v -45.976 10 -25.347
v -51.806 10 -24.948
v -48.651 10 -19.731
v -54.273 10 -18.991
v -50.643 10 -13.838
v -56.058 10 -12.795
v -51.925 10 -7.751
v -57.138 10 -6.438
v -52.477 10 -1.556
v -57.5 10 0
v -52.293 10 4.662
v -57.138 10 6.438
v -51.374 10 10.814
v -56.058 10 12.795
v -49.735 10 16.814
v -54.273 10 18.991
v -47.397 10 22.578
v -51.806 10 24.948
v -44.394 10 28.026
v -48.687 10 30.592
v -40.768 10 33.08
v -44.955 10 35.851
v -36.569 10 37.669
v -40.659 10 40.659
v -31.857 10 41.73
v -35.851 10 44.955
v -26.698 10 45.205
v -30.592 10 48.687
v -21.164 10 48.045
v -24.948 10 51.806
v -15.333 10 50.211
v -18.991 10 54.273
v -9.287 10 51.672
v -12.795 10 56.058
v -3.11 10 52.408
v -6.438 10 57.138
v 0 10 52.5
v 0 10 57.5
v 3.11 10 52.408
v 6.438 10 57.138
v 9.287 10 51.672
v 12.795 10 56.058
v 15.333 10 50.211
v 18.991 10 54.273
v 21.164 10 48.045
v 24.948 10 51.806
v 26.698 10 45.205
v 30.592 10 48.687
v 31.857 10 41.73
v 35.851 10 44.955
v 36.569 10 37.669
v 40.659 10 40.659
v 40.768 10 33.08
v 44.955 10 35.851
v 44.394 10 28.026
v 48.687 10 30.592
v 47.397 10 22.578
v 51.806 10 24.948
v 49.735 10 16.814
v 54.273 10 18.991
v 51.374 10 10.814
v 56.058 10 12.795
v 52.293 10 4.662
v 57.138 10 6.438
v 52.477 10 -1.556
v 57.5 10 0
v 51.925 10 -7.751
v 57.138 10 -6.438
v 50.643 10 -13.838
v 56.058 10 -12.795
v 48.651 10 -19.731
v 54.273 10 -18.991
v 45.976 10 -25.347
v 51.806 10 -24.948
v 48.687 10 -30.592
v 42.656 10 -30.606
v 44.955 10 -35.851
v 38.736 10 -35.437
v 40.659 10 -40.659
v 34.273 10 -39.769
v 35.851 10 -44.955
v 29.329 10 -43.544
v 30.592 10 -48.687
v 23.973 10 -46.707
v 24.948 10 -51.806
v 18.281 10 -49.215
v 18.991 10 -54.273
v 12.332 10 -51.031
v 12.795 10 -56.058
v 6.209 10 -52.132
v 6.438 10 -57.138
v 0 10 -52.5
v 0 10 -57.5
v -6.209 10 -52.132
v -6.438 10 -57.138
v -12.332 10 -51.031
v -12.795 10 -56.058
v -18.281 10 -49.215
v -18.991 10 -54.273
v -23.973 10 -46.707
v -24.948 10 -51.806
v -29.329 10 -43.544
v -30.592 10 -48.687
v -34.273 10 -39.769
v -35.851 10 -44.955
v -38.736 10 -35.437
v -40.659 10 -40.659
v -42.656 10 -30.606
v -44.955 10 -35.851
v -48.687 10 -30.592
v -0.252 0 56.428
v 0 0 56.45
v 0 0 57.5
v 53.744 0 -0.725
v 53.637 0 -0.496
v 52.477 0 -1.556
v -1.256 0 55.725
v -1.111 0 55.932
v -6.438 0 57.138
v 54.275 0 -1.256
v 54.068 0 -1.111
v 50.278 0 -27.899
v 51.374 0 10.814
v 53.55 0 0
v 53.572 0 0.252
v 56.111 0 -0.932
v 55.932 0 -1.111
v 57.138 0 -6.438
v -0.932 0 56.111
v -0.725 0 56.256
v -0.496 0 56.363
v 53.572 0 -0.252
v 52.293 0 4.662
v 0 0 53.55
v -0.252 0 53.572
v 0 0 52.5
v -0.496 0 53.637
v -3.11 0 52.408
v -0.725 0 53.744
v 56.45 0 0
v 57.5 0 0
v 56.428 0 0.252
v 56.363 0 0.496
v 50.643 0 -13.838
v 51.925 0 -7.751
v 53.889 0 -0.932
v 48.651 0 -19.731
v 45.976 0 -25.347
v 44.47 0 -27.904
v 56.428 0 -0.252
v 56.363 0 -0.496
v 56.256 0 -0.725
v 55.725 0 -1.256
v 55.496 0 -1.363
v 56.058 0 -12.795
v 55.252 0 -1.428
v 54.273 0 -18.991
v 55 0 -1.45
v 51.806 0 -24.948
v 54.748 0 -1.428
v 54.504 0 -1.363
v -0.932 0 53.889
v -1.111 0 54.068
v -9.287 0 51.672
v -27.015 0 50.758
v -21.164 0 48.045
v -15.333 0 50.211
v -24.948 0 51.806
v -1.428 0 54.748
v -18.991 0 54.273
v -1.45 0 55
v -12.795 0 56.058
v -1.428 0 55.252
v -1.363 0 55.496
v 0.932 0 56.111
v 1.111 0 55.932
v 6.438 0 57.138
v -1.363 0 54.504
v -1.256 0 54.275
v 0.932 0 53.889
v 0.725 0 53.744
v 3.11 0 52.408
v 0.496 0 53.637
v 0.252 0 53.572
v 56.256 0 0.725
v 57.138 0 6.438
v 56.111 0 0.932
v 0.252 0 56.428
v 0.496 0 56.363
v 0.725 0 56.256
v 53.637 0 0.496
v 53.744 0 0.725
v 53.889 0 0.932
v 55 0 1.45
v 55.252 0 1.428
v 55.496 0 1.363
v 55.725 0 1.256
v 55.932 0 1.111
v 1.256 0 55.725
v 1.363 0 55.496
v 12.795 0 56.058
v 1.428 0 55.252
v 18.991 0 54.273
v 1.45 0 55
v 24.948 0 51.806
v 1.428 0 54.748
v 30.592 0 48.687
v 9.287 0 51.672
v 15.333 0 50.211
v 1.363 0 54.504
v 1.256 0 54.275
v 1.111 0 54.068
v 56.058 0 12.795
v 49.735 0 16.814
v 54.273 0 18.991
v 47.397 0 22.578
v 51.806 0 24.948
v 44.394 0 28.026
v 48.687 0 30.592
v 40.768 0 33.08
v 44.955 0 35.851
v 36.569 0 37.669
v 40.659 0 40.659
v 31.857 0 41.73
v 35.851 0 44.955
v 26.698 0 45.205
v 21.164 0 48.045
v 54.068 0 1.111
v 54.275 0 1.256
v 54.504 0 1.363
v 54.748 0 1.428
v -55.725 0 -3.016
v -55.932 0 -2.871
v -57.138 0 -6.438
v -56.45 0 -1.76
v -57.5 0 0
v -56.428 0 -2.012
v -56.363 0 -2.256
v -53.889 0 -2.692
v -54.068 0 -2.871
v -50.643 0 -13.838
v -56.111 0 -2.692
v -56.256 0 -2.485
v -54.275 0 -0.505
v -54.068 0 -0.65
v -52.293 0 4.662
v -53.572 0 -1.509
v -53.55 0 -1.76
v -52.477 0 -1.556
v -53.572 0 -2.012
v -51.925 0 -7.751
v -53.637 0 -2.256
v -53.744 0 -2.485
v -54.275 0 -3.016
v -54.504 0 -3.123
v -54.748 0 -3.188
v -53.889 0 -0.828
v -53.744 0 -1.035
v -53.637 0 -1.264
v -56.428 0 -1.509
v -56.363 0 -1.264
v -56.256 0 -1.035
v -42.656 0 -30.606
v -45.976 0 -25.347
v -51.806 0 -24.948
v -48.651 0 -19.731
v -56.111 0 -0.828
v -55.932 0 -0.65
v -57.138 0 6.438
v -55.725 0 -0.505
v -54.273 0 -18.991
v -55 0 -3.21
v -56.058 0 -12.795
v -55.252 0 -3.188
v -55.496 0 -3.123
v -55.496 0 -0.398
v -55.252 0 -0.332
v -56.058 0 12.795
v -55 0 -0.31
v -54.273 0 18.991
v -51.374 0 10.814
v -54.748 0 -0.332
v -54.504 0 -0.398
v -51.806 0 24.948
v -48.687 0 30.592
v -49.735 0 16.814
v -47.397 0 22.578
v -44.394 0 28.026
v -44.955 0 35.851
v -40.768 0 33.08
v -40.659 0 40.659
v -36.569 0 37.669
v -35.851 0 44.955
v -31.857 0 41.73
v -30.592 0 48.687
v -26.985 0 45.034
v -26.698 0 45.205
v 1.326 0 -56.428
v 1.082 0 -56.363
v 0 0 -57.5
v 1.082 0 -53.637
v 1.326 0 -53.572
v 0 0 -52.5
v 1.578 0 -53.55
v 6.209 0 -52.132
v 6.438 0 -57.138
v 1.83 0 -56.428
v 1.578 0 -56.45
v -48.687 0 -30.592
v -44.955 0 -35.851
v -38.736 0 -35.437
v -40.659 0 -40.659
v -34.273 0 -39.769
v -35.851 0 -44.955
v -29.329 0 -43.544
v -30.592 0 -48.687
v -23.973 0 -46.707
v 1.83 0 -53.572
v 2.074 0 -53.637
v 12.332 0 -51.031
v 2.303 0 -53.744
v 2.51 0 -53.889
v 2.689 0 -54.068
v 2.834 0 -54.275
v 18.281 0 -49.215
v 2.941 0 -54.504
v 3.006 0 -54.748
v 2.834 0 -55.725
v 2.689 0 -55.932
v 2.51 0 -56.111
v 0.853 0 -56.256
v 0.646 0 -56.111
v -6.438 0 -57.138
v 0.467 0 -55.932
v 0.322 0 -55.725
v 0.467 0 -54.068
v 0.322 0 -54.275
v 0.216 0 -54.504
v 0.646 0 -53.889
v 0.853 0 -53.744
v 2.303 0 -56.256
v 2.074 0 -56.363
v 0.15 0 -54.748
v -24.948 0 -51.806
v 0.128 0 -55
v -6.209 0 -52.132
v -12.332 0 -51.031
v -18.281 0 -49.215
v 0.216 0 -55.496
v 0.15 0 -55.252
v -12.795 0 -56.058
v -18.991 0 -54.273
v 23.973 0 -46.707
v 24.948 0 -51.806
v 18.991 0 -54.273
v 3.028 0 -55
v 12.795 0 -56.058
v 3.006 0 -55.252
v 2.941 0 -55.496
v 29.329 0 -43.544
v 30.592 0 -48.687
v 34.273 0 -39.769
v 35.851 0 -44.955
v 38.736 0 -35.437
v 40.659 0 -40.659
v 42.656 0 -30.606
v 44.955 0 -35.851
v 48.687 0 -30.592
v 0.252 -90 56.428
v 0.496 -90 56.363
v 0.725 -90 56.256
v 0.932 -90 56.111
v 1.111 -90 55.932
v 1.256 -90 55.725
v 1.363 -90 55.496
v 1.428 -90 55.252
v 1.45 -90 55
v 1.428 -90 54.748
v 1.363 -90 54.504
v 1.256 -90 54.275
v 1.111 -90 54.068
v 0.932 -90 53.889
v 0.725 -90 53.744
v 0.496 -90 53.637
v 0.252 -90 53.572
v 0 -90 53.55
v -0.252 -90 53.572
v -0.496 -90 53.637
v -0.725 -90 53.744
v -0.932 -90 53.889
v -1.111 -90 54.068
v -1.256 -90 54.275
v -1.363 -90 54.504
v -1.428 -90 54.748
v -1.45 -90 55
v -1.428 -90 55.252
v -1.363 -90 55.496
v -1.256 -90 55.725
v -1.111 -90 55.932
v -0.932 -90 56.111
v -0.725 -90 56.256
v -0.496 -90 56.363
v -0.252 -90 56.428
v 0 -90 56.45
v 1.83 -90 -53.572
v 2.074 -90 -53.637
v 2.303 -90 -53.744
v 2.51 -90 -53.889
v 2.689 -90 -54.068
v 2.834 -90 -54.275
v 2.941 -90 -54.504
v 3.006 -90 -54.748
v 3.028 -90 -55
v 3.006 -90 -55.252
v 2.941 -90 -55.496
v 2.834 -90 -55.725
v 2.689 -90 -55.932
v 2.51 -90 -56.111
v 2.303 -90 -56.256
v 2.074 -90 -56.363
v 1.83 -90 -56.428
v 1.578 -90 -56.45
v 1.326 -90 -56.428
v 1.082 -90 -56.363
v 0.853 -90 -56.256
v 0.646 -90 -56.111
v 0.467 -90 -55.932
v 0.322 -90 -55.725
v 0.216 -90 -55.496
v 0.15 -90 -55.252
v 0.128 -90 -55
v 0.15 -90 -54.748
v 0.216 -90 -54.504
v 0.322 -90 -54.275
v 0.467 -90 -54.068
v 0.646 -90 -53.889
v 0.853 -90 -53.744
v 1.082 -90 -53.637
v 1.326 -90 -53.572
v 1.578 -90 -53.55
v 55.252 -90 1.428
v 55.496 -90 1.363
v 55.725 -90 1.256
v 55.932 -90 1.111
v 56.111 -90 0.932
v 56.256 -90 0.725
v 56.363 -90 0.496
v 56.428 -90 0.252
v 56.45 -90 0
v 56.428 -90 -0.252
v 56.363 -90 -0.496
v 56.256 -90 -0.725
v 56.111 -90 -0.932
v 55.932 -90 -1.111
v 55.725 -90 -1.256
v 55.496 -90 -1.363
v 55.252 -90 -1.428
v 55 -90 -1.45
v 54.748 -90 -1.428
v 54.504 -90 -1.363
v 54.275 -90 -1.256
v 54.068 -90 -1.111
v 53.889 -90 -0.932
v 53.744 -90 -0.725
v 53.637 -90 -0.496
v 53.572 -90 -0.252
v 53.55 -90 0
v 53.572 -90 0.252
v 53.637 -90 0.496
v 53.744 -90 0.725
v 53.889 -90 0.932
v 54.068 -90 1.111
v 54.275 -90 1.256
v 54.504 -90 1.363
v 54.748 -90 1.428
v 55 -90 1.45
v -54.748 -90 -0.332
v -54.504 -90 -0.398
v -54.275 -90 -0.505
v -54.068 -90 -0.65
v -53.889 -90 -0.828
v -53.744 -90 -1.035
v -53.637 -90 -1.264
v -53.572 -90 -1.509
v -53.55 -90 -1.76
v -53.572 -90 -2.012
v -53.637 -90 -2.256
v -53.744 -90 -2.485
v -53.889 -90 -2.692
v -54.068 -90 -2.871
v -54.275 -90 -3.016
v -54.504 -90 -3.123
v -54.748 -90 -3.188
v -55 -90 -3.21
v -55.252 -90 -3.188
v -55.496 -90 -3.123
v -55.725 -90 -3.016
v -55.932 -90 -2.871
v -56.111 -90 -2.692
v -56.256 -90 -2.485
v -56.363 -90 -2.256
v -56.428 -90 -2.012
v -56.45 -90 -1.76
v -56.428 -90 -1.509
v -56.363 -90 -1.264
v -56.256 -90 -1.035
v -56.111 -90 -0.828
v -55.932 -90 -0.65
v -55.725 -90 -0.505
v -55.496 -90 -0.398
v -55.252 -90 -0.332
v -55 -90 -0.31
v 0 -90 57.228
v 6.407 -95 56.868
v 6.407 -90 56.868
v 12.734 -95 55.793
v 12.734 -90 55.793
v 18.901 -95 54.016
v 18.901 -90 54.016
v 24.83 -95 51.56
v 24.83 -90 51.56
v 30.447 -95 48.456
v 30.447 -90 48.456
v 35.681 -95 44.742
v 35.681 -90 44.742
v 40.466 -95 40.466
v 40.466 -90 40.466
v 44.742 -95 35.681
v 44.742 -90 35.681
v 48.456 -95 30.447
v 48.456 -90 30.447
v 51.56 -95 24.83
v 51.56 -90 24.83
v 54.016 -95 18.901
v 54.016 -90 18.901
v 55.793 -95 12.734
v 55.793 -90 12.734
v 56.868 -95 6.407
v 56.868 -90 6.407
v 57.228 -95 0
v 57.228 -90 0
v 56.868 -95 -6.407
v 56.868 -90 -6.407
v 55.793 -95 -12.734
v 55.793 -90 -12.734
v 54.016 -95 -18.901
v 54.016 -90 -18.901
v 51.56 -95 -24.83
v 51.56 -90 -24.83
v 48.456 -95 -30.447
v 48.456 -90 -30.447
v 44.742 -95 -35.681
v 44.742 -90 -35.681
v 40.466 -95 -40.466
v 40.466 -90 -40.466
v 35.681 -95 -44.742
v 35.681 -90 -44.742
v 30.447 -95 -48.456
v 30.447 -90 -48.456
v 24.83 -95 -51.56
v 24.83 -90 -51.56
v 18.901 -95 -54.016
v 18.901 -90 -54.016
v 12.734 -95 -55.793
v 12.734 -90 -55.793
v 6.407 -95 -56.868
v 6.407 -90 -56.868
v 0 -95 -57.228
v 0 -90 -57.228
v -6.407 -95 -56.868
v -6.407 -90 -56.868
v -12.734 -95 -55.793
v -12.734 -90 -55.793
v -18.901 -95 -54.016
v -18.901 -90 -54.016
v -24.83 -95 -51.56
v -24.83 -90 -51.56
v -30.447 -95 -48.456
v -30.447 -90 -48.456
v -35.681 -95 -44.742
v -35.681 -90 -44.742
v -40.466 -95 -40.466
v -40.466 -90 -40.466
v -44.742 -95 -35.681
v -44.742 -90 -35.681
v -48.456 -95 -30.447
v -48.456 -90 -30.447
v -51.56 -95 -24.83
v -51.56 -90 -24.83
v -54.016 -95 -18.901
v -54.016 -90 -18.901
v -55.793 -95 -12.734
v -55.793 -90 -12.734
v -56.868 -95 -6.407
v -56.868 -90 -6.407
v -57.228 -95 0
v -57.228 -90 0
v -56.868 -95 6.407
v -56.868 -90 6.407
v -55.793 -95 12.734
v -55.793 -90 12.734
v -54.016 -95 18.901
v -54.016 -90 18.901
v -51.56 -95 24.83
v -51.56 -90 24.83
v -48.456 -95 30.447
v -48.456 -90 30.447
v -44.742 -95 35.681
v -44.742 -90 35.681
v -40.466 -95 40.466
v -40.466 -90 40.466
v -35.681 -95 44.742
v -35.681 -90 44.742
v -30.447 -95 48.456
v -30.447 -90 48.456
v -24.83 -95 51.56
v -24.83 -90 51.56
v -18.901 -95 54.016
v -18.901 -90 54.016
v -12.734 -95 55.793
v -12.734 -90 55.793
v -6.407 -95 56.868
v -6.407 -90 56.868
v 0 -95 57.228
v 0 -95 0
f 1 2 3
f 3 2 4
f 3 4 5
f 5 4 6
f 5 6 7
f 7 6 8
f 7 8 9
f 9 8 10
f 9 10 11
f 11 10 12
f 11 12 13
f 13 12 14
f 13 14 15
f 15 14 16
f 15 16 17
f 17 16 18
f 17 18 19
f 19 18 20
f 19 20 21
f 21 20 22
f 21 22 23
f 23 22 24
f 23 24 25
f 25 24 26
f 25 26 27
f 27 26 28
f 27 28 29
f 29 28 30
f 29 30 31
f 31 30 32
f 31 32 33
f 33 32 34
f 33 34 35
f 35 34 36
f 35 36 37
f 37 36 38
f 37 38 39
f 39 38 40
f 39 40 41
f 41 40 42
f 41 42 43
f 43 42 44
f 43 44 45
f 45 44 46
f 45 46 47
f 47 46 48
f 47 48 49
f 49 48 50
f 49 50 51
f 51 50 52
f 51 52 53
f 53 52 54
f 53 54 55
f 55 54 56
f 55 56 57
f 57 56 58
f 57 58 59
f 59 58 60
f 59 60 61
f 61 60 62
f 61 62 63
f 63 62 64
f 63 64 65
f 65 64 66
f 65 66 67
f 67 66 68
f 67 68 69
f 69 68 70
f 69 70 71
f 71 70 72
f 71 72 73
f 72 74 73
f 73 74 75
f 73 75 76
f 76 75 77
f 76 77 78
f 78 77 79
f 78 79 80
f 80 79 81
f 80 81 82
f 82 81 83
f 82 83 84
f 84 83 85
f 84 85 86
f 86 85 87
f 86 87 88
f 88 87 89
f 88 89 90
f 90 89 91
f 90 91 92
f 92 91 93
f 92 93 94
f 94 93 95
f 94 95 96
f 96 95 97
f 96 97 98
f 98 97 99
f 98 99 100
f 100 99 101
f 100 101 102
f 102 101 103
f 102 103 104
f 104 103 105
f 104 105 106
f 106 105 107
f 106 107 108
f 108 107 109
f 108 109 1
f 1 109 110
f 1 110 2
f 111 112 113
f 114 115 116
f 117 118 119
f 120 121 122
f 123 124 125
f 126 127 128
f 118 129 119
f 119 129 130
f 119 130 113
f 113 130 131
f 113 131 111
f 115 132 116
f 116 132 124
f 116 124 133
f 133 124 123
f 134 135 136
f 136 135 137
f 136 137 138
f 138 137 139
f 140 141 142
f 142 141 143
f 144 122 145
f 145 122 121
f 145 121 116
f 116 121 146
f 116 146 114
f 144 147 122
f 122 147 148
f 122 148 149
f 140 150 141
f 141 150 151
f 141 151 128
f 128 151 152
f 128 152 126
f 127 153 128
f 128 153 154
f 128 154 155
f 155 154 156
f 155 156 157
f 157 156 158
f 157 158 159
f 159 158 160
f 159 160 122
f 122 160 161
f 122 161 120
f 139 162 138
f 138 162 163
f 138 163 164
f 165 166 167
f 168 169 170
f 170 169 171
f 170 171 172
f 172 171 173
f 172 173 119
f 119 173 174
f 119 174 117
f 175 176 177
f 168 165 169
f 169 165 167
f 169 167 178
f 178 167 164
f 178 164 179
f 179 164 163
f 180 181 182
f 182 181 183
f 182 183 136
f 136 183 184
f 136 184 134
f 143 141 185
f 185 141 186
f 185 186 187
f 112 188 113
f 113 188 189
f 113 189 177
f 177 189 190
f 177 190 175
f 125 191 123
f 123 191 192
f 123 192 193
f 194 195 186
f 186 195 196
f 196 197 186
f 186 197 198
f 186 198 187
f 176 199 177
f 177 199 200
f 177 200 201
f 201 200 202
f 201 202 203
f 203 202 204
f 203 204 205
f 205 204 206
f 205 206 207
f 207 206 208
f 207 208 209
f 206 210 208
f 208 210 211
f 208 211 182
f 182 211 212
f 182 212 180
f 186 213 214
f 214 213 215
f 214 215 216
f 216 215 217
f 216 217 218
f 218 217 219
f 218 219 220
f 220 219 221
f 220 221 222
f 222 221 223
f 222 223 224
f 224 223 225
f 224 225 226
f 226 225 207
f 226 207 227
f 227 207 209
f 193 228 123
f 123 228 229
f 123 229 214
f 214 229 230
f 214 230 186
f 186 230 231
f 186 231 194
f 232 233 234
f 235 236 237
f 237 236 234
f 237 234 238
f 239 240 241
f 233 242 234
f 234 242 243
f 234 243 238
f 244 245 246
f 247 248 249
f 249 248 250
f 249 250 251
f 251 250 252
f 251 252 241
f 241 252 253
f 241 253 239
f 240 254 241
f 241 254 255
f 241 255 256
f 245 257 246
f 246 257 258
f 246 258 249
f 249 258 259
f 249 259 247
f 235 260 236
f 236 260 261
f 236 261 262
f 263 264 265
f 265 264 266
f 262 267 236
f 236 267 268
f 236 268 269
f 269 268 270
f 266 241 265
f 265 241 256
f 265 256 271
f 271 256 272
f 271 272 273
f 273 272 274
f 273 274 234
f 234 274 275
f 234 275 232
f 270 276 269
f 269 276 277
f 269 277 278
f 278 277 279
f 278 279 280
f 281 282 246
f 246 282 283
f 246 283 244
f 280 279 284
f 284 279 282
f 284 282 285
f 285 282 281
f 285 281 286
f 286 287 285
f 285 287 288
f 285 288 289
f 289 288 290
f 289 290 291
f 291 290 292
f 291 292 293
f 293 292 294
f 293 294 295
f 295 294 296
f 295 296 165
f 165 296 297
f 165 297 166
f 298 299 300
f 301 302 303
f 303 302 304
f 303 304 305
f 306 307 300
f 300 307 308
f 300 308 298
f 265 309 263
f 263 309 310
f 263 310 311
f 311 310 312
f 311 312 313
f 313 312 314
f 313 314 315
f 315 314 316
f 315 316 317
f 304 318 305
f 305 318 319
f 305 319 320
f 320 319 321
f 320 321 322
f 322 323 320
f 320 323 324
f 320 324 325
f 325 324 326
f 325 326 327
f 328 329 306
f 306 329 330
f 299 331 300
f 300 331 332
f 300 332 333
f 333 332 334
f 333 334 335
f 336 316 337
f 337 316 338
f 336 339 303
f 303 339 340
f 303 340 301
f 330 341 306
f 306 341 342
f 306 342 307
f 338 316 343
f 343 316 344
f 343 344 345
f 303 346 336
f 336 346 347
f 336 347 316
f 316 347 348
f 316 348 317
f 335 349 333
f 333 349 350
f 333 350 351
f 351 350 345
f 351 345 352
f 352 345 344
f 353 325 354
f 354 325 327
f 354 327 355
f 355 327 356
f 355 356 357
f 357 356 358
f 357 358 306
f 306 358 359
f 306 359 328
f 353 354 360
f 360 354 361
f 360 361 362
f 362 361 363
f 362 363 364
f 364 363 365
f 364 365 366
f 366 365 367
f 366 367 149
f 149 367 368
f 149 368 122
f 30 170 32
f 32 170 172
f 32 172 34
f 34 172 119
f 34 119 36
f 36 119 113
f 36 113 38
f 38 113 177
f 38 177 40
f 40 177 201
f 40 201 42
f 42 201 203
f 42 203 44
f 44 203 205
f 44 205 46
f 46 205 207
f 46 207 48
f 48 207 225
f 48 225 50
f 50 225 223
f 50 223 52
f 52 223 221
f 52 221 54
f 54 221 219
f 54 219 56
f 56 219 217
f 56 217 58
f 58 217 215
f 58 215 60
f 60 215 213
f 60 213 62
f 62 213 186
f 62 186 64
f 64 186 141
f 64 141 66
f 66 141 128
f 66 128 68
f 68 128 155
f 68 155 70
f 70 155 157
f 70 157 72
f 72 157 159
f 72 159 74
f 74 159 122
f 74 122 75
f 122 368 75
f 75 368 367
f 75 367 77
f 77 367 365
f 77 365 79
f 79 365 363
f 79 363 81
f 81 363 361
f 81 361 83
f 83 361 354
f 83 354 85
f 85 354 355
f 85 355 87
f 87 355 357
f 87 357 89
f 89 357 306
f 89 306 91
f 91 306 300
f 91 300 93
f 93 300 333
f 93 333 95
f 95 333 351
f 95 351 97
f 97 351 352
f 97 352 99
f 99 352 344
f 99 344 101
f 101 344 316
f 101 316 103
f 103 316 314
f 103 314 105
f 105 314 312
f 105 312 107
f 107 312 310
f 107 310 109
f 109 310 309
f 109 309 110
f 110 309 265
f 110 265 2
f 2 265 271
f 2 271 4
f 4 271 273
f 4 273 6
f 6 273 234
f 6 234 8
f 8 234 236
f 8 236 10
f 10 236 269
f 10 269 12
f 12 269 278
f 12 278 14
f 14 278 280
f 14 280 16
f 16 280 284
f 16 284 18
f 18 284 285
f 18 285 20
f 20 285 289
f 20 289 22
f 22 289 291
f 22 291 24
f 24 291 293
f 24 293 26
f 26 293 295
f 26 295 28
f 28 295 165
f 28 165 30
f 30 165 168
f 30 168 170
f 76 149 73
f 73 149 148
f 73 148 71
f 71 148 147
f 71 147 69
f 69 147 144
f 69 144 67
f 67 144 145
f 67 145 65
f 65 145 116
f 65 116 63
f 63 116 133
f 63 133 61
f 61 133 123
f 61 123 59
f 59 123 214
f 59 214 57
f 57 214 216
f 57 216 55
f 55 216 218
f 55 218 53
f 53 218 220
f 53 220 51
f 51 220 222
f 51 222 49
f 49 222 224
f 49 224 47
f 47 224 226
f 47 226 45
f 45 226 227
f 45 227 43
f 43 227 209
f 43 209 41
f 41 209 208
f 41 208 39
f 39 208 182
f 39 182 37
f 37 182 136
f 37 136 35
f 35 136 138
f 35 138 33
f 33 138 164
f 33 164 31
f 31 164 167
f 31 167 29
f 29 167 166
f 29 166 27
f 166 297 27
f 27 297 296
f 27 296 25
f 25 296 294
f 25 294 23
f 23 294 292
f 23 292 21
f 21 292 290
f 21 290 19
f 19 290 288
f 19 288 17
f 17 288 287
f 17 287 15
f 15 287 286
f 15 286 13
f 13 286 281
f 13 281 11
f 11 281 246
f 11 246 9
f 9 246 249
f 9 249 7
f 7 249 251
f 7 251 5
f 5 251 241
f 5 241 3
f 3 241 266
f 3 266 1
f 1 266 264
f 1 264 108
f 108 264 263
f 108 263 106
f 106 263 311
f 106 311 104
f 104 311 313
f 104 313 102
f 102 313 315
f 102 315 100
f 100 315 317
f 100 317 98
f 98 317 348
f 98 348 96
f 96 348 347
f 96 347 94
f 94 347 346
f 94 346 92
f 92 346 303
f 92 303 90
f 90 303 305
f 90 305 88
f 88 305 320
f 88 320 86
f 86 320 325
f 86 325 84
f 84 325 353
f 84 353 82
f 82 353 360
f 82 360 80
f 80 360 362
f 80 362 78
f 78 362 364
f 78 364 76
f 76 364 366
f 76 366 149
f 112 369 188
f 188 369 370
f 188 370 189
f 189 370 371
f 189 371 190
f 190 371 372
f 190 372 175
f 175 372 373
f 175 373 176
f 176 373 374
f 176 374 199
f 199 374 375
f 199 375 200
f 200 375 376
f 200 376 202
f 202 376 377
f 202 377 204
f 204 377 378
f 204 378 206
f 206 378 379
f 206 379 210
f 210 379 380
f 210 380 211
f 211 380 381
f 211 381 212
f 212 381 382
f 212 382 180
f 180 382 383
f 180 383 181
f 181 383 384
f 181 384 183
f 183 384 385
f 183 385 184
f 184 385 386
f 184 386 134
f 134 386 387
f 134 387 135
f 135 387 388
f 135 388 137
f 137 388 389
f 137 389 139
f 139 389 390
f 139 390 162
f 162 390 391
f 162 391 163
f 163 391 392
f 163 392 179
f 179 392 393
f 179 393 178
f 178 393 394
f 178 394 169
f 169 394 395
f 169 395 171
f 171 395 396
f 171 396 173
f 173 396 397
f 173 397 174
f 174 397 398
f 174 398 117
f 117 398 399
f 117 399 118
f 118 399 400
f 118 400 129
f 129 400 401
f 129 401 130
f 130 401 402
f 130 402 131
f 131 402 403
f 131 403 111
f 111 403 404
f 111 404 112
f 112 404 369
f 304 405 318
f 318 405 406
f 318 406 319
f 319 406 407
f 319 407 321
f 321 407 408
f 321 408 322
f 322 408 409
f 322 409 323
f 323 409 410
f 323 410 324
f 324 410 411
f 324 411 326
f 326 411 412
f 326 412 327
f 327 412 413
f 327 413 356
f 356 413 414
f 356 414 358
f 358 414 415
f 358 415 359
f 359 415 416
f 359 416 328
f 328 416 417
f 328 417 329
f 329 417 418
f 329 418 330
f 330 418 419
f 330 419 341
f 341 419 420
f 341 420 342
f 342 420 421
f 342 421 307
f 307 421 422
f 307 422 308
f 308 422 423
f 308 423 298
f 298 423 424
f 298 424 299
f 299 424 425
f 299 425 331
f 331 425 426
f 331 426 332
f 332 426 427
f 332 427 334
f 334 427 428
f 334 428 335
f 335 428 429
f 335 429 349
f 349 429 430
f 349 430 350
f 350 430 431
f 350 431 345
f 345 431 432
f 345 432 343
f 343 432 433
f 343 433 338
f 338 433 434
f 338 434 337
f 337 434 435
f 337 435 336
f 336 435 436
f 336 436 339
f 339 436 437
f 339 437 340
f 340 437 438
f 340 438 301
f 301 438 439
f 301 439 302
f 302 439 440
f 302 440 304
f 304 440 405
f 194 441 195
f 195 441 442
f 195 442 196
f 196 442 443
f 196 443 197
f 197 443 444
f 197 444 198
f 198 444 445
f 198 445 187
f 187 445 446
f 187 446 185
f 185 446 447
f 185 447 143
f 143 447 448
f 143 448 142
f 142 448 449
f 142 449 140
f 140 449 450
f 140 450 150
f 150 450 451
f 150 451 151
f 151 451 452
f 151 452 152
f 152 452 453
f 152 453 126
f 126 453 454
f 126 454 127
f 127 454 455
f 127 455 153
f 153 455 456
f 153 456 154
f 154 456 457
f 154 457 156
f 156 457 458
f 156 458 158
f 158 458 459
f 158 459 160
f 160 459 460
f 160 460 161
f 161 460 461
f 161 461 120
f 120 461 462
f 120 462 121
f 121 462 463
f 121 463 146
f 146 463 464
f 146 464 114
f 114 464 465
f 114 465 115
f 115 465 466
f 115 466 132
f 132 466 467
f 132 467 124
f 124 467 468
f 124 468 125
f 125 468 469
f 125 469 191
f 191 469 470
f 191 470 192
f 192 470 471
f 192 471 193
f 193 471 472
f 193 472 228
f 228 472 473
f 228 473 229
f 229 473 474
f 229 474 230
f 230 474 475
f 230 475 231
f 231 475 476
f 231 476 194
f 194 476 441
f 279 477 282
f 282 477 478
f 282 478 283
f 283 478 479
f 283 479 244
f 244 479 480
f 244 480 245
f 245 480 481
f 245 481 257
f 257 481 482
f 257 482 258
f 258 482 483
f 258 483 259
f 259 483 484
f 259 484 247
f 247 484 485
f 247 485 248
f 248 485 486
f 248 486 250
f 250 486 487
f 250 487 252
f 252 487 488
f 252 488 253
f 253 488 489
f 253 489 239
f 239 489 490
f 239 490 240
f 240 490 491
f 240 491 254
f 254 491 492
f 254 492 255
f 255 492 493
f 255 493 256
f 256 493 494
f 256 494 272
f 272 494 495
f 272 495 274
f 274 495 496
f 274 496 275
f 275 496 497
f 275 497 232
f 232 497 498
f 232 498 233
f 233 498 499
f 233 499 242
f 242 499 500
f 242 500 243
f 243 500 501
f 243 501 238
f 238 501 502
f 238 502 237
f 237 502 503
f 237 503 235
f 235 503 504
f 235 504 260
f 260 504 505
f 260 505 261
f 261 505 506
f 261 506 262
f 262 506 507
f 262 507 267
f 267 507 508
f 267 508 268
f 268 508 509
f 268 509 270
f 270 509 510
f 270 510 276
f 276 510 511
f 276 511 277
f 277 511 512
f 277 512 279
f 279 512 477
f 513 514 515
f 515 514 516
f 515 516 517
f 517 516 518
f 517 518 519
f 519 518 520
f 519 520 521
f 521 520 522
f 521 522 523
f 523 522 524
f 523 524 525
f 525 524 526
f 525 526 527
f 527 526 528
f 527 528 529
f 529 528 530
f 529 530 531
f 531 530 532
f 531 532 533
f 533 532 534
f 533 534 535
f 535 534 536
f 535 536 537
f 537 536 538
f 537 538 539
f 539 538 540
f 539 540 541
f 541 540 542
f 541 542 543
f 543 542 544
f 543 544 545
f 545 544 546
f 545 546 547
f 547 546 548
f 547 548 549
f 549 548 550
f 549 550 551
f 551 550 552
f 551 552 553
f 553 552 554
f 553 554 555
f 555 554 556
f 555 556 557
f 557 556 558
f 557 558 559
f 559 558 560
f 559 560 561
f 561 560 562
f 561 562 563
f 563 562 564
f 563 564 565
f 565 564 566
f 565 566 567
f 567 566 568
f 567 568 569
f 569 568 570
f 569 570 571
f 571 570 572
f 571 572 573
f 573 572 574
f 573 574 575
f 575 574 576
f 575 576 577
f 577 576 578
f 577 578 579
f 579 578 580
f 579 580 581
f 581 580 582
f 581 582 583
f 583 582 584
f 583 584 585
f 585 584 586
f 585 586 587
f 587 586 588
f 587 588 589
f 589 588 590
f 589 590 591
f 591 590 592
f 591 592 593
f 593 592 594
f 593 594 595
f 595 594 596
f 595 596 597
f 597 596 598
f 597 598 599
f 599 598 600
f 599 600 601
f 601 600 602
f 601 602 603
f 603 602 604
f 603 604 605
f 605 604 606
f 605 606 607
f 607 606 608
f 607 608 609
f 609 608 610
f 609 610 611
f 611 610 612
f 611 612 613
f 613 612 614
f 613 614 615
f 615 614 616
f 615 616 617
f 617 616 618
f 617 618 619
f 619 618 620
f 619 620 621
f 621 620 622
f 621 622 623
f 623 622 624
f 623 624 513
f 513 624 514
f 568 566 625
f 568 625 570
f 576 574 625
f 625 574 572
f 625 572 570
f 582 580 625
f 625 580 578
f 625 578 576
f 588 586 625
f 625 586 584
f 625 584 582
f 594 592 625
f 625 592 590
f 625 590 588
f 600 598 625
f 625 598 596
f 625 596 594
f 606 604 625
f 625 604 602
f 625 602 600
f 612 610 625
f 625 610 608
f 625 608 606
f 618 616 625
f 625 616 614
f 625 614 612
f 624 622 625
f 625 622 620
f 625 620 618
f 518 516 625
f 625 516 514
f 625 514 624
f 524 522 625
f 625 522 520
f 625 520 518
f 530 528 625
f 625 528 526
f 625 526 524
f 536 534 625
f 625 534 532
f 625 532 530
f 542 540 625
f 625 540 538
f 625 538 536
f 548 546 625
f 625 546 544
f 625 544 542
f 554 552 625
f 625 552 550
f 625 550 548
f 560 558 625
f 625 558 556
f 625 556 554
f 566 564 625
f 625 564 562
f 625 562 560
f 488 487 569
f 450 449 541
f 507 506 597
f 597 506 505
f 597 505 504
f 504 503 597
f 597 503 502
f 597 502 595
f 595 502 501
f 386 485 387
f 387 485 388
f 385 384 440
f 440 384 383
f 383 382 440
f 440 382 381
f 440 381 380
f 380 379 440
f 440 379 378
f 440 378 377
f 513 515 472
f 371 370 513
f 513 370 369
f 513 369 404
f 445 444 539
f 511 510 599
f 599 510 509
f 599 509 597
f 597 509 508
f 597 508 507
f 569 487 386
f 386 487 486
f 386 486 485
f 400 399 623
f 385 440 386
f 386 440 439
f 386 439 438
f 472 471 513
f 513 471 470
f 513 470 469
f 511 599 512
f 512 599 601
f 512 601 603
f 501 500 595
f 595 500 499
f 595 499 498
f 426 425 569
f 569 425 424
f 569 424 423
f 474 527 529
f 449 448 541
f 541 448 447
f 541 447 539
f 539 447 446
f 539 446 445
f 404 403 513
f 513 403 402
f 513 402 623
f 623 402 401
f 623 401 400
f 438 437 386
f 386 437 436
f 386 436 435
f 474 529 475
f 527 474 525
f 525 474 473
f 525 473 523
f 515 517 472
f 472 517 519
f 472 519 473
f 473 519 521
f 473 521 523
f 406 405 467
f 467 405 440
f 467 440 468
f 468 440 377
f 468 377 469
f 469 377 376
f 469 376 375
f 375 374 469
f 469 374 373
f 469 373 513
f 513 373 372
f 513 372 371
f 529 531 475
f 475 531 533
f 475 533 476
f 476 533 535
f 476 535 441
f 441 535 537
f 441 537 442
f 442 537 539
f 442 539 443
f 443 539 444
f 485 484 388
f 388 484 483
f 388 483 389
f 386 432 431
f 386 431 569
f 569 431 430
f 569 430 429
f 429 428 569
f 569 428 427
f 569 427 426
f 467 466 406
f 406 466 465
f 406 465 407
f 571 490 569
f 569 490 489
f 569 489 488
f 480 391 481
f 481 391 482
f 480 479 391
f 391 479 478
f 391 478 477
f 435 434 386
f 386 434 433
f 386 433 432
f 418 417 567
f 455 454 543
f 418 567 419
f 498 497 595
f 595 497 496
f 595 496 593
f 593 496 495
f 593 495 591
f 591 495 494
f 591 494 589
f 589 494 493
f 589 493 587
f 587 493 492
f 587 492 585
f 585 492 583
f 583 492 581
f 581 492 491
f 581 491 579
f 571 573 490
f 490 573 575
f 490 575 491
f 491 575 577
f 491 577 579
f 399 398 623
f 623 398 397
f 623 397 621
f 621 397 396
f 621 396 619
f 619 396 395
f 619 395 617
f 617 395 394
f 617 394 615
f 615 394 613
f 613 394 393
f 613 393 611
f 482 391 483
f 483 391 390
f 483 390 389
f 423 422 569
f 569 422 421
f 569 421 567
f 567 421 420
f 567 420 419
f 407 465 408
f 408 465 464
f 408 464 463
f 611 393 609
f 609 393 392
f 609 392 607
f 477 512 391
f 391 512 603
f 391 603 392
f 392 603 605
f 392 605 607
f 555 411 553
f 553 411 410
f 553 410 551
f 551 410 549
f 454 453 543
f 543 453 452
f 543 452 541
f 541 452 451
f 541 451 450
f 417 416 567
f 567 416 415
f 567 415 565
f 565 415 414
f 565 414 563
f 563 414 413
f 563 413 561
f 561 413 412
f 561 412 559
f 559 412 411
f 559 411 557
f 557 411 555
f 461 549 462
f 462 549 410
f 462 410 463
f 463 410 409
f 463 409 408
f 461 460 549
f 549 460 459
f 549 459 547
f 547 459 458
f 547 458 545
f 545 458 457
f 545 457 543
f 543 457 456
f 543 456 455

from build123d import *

# Parameters (mm, degrees)
SKETCH1_R           = 57.5
SKETCH1_R_2         = 52.5
BOSS_EXTRUDE1_DEPTH = 10
SKETCH2_R           = 1.45
BOSS_EXTRUDE2_DEPTH = 90
SKETCH4_R           = 57.227664134
BOSS_EXTRUDE3_DEPTH = 5


with BuildPart() as part:
    # Sketch1 → Boss-Extrude1 (new body)
    with BuildSketch(Plane(origin=(0, 0, 0), x_dir=(1, 0, 0), z_dir=(0, 1, 0))):
        Circle(SKETCH1_R)
        Circle(SKETCH1_R_2, mode=Mode.SUBTRACT)
    extrude(amount=BOSS_EXTRUDE1_DEPTH)

    # Sketch2 → Boss-Extrude2 (add)
    with BuildSketch(Plane.XZ):
        with Locations((0, 55)):
            Circle(SKETCH2_R)
        with Locations((1.578223765, -55)):
            Circle(SKETCH2_R)
        with Locations((55, 0)):
            Circle(SKETCH2_R)
        with Locations((-55, -1.760313132)):
            Circle(SKETCH2_R)
    extrude(amount=BOSS_EXTRUDE2_DEPTH)

    # Sketch4 → Boss-Extrude3 (add)
    with BuildSketch(Plane(origin=(0, -90, 0), x_dir=(-1, 0, 0), z_dir=(0, -1, 0))):
        Circle(SKETCH4_R)
    extrude(amount=BOSS_EXTRUDE3_DEPTH)


solid = part.part
